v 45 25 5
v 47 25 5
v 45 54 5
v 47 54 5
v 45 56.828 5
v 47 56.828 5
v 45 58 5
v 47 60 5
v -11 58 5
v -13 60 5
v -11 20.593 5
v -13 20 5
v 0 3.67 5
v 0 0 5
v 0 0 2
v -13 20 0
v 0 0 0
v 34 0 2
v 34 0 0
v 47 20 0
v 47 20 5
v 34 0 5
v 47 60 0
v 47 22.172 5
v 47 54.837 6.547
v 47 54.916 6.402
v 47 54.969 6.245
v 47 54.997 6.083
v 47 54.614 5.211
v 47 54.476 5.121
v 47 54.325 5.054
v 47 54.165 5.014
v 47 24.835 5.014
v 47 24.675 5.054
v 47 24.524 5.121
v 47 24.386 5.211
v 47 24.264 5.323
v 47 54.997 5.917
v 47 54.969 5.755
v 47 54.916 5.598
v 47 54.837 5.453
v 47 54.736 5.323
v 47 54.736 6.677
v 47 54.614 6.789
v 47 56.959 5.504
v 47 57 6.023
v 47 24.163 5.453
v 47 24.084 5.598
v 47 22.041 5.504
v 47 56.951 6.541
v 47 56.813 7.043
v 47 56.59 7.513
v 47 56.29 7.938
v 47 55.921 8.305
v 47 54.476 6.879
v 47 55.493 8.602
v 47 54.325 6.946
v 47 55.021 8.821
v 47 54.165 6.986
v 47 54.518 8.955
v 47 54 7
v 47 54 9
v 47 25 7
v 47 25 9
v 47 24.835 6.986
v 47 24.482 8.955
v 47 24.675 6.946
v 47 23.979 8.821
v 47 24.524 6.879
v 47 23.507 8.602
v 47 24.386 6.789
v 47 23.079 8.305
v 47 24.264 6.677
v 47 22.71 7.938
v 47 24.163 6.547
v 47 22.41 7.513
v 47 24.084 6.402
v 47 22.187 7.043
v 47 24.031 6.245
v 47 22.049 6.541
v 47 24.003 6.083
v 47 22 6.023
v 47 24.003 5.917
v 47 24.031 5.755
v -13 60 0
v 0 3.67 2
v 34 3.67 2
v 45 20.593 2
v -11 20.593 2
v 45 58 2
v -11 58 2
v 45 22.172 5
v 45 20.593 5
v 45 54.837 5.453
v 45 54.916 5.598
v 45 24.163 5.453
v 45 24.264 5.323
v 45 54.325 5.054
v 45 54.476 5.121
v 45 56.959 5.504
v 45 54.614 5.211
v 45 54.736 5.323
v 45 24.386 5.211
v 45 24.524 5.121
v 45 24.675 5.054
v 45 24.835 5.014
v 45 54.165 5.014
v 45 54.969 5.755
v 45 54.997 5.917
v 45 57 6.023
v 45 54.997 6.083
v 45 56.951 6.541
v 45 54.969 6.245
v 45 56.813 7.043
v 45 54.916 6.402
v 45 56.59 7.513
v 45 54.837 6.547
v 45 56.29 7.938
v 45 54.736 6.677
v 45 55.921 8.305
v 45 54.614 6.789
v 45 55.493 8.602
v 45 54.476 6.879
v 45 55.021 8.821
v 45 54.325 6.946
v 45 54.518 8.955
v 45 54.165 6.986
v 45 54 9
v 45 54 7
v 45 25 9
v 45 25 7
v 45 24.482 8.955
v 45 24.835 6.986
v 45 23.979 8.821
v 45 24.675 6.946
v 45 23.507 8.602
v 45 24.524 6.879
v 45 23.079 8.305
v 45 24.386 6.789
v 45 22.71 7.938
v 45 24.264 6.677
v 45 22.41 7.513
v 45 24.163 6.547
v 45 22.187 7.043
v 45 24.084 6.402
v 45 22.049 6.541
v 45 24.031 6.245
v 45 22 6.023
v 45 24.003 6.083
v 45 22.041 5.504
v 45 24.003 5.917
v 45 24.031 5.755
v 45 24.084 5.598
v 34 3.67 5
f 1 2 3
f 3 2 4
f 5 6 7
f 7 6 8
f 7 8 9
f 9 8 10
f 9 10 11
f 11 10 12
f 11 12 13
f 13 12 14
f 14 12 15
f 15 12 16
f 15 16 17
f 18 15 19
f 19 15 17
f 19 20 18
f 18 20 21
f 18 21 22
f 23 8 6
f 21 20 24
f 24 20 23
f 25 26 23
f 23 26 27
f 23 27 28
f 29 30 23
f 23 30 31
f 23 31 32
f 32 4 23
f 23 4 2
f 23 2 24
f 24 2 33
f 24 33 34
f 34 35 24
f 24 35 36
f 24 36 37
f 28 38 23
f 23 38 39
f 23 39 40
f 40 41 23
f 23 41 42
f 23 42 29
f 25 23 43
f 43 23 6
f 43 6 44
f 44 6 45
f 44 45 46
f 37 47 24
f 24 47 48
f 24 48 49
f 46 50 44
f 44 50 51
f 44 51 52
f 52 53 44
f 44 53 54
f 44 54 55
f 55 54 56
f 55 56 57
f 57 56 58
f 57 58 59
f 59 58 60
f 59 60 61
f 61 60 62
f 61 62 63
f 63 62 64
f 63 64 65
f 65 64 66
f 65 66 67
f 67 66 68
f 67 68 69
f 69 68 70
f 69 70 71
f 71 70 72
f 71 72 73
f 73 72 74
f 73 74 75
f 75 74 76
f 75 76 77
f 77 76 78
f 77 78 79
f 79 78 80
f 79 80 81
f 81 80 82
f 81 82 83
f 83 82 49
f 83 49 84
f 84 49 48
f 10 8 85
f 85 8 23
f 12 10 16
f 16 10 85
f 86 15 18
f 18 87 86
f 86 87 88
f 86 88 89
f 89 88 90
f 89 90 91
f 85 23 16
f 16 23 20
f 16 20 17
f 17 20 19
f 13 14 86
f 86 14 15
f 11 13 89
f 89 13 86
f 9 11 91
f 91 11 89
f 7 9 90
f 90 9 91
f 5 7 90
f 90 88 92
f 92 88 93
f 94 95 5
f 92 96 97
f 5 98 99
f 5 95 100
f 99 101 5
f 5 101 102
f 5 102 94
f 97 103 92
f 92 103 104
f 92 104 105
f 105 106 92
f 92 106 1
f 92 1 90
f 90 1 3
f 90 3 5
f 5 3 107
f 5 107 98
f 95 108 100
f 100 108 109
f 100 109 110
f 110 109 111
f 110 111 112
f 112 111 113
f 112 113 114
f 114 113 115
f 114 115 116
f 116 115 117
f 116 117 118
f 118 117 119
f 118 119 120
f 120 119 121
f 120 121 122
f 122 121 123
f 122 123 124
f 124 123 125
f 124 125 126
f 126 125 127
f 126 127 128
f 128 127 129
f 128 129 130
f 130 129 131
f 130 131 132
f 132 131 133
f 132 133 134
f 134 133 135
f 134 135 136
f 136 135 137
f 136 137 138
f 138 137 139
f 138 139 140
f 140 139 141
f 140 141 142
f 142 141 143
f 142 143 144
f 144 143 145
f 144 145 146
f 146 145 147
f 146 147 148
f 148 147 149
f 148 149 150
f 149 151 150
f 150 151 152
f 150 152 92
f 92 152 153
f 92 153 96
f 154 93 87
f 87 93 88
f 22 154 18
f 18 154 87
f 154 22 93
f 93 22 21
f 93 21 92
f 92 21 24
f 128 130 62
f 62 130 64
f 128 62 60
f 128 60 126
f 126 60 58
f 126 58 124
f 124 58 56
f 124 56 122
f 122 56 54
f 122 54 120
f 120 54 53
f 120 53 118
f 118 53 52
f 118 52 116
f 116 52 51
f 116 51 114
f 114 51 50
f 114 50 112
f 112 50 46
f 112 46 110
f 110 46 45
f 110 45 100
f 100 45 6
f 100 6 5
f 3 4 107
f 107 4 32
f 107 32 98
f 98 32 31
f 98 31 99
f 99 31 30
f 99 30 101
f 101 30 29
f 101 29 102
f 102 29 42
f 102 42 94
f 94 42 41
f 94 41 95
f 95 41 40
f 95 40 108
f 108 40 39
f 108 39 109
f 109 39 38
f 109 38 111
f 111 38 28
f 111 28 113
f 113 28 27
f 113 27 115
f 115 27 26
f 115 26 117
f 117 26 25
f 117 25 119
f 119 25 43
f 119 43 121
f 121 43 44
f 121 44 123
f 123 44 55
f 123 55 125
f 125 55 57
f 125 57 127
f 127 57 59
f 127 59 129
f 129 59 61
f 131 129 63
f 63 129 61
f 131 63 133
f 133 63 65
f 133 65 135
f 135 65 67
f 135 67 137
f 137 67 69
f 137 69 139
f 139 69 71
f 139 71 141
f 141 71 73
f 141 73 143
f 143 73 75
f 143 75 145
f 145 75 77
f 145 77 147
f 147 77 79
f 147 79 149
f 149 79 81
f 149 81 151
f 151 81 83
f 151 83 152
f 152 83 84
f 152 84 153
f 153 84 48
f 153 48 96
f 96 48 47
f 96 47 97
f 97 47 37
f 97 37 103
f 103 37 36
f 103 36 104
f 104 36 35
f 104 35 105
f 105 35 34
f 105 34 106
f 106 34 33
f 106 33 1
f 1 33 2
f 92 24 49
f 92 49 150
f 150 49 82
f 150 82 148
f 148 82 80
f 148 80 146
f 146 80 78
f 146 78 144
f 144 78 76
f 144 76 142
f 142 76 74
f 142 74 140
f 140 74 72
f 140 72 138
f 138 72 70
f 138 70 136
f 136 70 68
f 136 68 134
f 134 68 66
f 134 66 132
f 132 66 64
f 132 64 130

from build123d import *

# Parameters (mm, degrees)
P_IDAT_VYSUNUT_M1_DEPTH = 2
P_IDAT_VYSUNUT_M2_DEPTH = 3
P_IDAT_VYSUNUT_M3_DEPTH = 2


with BuildPart() as part:
    # Skica1 → Přidat vysunutím1 (new body)
    with BuildSketch(Plane.XY):
        Polygon((0, 0), (34, 0), (47, 20), (47, 60), (-13, 60), (-13, 20), align=None)
    extrude(amount=P_IDAT_VYSUNUT_M1_DEPTH)

    # Skica2 → Přidat vysunutím2 (add)
    with BuildSketch(Plane.XY.offset(2)):
        Polygon((-11, 20.592880136), (0, 3.669803213), (0, 0), (-13, 20), (-13, 60), (47, 60), (47, 20), (34, 0), (34, 3.669803213), (45, 20.592880136), (45, 58), (-11, 58), align=None)
    extrude(amount=P_IDAT_VYSUNUT_M2_DEPTH)

    # Skica3 → Přidat vysunutím3 (add)
    with BuildSketch(Plane(origin=(47, 0, 0), x_dir=(0, 0, -1), z_dir=(1, 0, 0))):
        with BuildLine():
            ThreePointArc((-5, 25), (-6, 24), (-7, 25))
            Line((-7, 25), (-7, 54))
            ThreePointArc((-7, 54), (-6, 55), (-5, 54))
            Line((-5, 54), (-5, 56.828427125))
            ThreePointArc((-5, 56.828427125), (-7.732050808, 56.449489743), (-9, 54))
            Line((-9, 54), (-9, 25))
            ThreePointArc((-9, 25), (-7.732050808, 22.550510257), (-5, 22.171572875))
            Line((-5, 22.171572875), (-5, 25))
        make_face()
    extrude(amount=-P_IDAT_VYSUNUT_M3_DEPTH)


solid = part.part
